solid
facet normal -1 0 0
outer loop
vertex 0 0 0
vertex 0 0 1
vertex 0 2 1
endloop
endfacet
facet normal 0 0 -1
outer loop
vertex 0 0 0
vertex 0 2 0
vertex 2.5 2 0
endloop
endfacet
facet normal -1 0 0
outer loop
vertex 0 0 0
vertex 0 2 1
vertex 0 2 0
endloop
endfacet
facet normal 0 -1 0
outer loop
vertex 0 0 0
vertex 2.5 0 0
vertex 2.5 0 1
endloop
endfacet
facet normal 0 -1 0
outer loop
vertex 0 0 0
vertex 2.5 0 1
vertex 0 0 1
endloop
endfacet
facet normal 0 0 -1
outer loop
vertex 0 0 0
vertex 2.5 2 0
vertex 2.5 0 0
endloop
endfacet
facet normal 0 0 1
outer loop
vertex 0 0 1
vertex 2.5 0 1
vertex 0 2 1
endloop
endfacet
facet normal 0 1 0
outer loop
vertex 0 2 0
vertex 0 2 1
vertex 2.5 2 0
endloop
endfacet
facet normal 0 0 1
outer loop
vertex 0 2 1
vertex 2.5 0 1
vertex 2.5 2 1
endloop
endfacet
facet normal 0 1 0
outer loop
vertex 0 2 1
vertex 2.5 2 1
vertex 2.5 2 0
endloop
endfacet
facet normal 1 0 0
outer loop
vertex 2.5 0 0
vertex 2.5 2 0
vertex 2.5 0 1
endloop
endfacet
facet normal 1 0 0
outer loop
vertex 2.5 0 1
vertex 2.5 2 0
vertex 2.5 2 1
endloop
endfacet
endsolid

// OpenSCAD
/* Warning, this is a very basic generator with a lot of approximation 
input data : [VDFN, J7A, 2.5x2.0mm, 6, , C, C04-01005C]
generated by com.zoubworld.electronics.cad.model3d.Basic
Date : Sun Feb 15 10:50:49 CET 2026
*/

//body
color("black")
translate([0,0,0])
cube([2.5,2.0,1.0], center=false);
